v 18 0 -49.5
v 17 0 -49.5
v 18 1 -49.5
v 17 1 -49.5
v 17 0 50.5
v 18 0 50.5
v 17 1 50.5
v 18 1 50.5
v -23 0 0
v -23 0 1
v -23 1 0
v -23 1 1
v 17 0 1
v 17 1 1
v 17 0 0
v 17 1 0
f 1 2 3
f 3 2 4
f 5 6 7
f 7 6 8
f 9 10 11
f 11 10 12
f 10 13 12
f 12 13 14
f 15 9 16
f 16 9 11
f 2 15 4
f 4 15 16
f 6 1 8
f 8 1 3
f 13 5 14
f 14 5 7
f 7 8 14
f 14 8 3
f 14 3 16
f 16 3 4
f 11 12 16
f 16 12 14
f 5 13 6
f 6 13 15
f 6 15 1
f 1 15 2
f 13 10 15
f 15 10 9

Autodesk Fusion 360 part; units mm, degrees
sketch "Sketch1" plane through (0, 0, 0) normal (0, 1, 0) x (1, 0, 0)
  line L0 (0, 0) -> (17, 0)
  line L1 (17, 0) -> (17, -1)
  line L2 (17, -1) -> (0, -1)
  line L3 (0, -1) -> (0, 0)
  line L4 (17, -1) -> (17, -0.5)
  line L5 (17, -0.5) -> (17.5, -0.5)
  line L6 (18, 24.5) -> (17, 24.5)
  line L7 (17, 24.5) -> (17, -25.5)
  line L8 (17, -25.5) -> (18, -25.5)
  line L9 (18, -25.5) -> (18, 24.5)
  point P0 (17.5, -0.5)
  dimension "d1" = 17
  dimension "d2" = 1
  dimension "d3" = 1
  dimension "d4" = 50
extrude "Extrude1" add sketch "Sketch1" along normal blind 1
extrude "Extrude2" add 1 faces at (0, 0.3333, 0.6667) along direction (-1, 0, 0) blind 5
extrude "Extrude3" add 1 faces at (-5, 0.3333, 0.6667) along direction (-1, 0, 0) blind 18
extrude "Extrude4" add 1 faces at (17.3333, 0.3333, 25.5) along direction (0, 0, 1) blind 25
extrude "Extrude5" add 1 faces at (17.6667, 0.3333, -24.5) along direction (0, 0, -1) blind 25
